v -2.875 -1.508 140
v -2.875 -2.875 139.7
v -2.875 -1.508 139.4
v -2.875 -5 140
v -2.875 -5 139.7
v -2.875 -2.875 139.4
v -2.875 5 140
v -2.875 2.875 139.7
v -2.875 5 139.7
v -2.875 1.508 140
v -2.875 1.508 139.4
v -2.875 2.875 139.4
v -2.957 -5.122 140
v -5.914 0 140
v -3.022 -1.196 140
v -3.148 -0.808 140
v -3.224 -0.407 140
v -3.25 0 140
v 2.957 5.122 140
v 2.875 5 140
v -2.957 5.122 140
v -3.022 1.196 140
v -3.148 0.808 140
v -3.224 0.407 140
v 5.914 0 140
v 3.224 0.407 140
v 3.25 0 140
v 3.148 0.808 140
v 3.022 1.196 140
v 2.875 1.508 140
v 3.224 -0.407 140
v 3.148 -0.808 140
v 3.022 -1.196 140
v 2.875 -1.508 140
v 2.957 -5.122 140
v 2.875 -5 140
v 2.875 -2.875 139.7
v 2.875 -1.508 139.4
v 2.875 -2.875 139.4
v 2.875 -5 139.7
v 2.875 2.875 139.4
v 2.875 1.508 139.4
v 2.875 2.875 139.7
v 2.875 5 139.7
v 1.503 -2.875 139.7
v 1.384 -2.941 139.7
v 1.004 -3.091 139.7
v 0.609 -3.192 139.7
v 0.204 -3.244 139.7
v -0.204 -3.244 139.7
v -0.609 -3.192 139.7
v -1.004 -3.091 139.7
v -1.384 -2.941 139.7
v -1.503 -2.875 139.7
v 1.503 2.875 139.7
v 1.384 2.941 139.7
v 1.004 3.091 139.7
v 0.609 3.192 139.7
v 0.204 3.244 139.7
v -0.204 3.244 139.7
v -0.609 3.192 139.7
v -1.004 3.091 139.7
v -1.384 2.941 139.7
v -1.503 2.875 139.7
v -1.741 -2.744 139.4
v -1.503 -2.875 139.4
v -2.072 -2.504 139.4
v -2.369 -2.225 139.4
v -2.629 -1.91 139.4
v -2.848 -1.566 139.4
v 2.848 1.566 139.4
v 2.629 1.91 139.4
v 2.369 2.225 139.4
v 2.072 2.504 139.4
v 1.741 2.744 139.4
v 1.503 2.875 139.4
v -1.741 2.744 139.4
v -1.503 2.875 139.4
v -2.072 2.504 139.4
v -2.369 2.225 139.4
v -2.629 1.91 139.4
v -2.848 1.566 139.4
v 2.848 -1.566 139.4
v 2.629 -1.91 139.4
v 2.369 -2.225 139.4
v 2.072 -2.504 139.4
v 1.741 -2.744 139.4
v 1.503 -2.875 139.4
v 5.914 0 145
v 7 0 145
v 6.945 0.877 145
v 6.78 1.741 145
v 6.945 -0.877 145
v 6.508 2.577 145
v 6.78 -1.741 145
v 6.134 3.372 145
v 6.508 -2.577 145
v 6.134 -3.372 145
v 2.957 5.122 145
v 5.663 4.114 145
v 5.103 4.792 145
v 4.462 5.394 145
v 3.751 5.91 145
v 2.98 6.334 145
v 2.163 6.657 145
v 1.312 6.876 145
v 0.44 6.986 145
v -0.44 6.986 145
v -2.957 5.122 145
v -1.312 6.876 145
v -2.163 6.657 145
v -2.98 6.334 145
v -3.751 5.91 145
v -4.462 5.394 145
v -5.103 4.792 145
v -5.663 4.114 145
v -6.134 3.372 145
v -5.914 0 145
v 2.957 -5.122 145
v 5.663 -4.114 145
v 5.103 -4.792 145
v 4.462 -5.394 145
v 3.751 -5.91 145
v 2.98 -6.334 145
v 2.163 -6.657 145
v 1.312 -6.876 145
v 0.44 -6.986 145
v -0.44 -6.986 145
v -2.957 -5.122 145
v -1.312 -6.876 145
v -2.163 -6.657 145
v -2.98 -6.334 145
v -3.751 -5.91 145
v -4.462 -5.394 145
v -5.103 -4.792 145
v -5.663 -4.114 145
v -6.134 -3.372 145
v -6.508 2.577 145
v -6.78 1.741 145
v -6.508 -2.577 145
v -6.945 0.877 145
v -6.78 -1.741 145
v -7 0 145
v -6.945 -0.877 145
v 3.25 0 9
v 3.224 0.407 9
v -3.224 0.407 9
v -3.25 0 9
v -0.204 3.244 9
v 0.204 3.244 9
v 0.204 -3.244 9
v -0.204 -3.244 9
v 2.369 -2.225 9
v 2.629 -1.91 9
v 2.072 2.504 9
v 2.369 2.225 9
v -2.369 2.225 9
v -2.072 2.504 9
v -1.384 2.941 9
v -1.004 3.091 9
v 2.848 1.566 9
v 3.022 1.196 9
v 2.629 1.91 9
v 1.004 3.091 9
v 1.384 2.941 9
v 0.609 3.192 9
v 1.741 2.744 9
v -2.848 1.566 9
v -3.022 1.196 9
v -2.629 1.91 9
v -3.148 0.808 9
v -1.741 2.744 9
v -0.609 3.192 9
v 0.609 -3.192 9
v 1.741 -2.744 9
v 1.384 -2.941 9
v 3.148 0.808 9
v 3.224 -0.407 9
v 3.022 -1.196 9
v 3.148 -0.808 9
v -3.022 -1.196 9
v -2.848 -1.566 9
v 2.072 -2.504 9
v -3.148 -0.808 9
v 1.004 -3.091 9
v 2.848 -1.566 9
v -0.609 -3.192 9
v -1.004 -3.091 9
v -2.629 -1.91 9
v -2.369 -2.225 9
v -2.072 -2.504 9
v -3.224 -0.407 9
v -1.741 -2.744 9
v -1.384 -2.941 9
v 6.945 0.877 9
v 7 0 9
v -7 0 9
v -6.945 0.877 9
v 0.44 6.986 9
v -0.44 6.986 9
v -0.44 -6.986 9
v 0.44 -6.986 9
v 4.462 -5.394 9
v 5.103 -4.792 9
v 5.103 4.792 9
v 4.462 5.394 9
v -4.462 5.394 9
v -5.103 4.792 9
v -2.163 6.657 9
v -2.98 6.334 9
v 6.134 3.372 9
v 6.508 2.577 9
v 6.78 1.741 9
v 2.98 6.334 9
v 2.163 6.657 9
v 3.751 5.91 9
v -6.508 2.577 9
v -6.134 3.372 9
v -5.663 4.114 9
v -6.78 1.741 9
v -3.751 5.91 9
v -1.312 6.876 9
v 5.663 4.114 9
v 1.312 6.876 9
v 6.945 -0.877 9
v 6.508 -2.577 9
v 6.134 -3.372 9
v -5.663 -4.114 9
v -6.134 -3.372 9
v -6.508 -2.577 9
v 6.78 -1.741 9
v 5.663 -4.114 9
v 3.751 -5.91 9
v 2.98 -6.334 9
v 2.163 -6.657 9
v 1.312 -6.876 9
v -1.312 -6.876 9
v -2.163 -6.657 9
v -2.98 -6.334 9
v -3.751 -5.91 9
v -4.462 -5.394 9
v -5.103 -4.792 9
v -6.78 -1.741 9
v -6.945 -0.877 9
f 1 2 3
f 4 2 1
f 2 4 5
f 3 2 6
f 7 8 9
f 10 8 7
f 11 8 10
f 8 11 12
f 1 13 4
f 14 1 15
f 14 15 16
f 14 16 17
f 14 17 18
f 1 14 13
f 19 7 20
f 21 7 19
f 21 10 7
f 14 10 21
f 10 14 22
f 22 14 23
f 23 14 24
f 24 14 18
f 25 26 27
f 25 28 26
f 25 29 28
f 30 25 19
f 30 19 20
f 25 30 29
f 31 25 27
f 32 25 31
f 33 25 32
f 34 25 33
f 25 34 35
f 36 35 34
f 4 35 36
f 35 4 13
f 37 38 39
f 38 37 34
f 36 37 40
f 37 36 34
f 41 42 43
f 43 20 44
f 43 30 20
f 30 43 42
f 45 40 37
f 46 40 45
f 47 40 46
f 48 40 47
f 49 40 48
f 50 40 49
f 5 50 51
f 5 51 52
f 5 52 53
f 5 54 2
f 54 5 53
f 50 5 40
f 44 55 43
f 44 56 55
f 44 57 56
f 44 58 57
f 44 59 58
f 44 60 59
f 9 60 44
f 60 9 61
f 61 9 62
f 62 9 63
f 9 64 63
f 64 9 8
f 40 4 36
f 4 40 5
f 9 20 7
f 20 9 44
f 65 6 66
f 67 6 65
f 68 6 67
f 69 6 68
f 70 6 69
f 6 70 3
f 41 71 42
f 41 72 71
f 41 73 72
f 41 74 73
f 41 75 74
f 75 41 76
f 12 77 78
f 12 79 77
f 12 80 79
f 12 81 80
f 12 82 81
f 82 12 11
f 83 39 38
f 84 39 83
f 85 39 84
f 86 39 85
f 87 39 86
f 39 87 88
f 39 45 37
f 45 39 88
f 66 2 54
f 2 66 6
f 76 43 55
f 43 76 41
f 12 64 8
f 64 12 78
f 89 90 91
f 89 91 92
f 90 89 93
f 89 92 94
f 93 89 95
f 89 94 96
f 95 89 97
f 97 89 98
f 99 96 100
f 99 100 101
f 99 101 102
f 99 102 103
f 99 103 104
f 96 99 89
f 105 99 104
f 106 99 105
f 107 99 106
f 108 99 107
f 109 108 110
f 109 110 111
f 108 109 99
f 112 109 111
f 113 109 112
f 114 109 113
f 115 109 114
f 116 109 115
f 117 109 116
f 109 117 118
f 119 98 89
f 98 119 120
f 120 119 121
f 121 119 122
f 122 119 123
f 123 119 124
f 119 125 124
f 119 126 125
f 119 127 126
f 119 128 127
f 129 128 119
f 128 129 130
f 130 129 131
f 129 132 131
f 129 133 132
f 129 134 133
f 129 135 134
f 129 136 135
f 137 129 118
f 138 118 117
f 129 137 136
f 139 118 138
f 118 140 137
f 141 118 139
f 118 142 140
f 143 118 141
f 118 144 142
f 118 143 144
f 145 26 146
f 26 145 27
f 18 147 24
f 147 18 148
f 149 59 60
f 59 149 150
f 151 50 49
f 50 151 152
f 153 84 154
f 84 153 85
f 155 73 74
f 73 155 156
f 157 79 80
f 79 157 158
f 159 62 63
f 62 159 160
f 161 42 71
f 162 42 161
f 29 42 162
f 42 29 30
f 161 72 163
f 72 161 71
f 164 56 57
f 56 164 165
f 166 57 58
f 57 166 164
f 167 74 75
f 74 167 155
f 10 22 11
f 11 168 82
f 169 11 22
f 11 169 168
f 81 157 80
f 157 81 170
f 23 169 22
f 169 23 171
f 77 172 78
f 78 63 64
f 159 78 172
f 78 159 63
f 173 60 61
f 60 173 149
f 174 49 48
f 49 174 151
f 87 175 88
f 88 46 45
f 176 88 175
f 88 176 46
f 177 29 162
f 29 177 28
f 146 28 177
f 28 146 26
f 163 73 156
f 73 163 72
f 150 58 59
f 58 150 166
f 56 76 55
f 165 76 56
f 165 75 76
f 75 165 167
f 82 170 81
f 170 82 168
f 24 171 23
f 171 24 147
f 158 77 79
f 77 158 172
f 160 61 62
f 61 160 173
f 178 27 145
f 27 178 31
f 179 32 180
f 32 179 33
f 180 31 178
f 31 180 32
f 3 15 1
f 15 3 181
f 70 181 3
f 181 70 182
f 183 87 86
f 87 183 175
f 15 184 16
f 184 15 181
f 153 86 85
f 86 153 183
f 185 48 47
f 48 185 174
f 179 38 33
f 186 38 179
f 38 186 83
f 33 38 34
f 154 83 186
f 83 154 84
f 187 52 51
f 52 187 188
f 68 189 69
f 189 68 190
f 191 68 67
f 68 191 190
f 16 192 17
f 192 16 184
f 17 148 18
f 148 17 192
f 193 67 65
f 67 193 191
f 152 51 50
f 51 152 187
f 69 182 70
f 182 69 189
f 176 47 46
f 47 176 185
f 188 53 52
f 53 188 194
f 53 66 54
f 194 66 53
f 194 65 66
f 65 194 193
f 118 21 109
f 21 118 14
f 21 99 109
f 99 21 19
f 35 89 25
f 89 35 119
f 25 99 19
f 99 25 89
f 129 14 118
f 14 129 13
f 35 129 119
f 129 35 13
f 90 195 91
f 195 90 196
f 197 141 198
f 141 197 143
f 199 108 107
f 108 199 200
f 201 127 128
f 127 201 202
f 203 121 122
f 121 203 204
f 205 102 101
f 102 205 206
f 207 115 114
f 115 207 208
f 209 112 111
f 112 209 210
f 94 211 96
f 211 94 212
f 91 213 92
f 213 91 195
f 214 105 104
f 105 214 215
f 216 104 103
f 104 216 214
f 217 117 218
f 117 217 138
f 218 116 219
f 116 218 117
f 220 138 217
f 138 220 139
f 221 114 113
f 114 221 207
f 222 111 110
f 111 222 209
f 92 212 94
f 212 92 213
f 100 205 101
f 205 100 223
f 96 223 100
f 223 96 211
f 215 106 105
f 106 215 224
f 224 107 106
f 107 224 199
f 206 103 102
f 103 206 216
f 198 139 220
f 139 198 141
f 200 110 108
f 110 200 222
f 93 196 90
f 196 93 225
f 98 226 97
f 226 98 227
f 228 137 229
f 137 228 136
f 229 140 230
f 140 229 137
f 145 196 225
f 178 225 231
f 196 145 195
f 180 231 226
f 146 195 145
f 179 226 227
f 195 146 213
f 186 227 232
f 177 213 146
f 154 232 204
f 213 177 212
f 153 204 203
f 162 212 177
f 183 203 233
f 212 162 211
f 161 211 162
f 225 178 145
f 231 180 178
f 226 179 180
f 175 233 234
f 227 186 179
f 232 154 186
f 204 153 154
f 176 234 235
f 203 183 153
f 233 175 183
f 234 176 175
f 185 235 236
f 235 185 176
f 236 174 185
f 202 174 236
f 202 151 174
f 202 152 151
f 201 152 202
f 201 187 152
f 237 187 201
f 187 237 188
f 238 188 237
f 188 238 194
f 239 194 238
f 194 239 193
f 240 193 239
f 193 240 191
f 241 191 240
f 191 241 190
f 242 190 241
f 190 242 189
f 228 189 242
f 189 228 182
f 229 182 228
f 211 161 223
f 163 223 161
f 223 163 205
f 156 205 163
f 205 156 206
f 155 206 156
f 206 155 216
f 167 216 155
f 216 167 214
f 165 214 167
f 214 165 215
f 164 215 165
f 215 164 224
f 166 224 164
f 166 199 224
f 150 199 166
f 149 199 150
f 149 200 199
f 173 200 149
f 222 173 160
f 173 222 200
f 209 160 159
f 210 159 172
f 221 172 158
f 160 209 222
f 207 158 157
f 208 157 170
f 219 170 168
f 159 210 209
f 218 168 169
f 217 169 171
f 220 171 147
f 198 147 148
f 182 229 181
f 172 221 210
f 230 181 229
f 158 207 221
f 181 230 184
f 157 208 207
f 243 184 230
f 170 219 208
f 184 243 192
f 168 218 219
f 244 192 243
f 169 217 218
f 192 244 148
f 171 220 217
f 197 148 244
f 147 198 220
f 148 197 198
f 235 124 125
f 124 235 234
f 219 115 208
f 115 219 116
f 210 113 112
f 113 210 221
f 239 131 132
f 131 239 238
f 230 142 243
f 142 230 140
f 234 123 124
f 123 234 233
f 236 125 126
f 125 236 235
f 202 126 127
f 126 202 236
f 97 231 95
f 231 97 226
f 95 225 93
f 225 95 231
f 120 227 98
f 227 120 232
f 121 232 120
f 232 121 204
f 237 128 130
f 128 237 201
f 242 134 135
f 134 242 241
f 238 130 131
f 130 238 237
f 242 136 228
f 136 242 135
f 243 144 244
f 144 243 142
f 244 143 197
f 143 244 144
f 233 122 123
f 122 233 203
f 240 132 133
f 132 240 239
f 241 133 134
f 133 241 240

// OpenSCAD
$fn = 50;


difference() {
	union() {
		translate(v = [0, 0, 9.0000000000]) {
			cylinder(h = 136, r = 7.0000000000);
		}
	}
	union() {
		translate(v = [0, 0, 145]) {
			rotate(a = [0, 0, 0]) {
				difference() {
					union() {
						#translate(v = [-2.8750000000, -5.0000000000, -5.3000000000]) {
							cube(size = [5.7500000000, 10, 0.3000000000]);
						}
						#translate(v = [-2.8750000000, -2.8750000000, -5.6000000000]) {
							cube(size = [5.7500000000, 5.7500000000, 0.3000000000]);
						}
						#translate(v = [-2.8750000000, -5.0000000000, 0]) {
							cube(size = [5.7500000000, 10, 0.3000000000]);
						}
						#translate(v = [-2.8750000000, -2.8750000000, 0.3000000000]) {
							cube(size = [5.7500000000, 5.7500000000, 0.3000000000]);
						}
						#translate(v = [0, 0, -100.0000000000]) {
							cylinder(h = 200, r = 3.2500000000);
						}
						translate(v = [0, 0, -5]) {
							#linear_extrude(height = 5) {
								polygon(points = [[5.9142500000, 0.0000000000], [2.9571250000, 5.1218907443], [-2.9571250000, 5.1218907443], [-5.9142500000, 0.0000000000], [-2.9571250000, -5.1218907443], [2.9571250000, -5.1218907443]]);
							}
						}
						#translate(v = [-2.8750000000, -5.0000000000, -5.3000000000]) {
							cube(size = [5.7500000000, 10, 0.3000000000]);
						}
						#translate(v = [-2.8750000000, -2.8750000000, -5.6000000000]) {
							cube(size = [5.7500000000, 5.7500000000, 0.3000000000]);
						}
						#translate(v = [-2.8750000000, -5.0000000000, 0]) {
							cube(size = [5.7500000000, 10, 0.3000000000]);
						}
						#translate(v = [-2.8750000000, -2.8750000000, 0.3000000000]) {
							cube(size = [5.7500000000, 5.7500000000, 0.3000000000]);
						}
						#translate(v = [0, 0, -100.0000000000]) {
							cylinder(h = 200, r = 3.2500000000);
						}
						#translate(v = [-2.8750000000, -5.0000000000, -5.3000000000]) {
							cube(size = [5.7500000000, 10, 0.3000000000]);
						}
						#translate(v = [-2.8750000000, -2.8750000000, -5.6000000000]) {
							cube(size = [5.7500000000, 5.7500000000, 0.3000000000]);
						}
						#translate(v = [-2.8750000000, -5.0000000000, 0]) {
							cube(size = [5.7500000000, 10, 0.3000000000]);
						}
						#translate(v = [-2.8750000000, -2.8750000000, 0.3000000000]) {
							cube(size = [5.7500000000, 5.7500000000, 0.3000000000]);
						}
						#translate(v = [0, 0, -100.0000000000]) {
							cylinder(h = 200, r = 3.2500000000);
						}
					}
					union();
				}
			}
		}
		#translate(v = [0, 0, -100.0000000000]) {
			cylinder(h = 200, r = 3.2500000000);
		}
	}
}
